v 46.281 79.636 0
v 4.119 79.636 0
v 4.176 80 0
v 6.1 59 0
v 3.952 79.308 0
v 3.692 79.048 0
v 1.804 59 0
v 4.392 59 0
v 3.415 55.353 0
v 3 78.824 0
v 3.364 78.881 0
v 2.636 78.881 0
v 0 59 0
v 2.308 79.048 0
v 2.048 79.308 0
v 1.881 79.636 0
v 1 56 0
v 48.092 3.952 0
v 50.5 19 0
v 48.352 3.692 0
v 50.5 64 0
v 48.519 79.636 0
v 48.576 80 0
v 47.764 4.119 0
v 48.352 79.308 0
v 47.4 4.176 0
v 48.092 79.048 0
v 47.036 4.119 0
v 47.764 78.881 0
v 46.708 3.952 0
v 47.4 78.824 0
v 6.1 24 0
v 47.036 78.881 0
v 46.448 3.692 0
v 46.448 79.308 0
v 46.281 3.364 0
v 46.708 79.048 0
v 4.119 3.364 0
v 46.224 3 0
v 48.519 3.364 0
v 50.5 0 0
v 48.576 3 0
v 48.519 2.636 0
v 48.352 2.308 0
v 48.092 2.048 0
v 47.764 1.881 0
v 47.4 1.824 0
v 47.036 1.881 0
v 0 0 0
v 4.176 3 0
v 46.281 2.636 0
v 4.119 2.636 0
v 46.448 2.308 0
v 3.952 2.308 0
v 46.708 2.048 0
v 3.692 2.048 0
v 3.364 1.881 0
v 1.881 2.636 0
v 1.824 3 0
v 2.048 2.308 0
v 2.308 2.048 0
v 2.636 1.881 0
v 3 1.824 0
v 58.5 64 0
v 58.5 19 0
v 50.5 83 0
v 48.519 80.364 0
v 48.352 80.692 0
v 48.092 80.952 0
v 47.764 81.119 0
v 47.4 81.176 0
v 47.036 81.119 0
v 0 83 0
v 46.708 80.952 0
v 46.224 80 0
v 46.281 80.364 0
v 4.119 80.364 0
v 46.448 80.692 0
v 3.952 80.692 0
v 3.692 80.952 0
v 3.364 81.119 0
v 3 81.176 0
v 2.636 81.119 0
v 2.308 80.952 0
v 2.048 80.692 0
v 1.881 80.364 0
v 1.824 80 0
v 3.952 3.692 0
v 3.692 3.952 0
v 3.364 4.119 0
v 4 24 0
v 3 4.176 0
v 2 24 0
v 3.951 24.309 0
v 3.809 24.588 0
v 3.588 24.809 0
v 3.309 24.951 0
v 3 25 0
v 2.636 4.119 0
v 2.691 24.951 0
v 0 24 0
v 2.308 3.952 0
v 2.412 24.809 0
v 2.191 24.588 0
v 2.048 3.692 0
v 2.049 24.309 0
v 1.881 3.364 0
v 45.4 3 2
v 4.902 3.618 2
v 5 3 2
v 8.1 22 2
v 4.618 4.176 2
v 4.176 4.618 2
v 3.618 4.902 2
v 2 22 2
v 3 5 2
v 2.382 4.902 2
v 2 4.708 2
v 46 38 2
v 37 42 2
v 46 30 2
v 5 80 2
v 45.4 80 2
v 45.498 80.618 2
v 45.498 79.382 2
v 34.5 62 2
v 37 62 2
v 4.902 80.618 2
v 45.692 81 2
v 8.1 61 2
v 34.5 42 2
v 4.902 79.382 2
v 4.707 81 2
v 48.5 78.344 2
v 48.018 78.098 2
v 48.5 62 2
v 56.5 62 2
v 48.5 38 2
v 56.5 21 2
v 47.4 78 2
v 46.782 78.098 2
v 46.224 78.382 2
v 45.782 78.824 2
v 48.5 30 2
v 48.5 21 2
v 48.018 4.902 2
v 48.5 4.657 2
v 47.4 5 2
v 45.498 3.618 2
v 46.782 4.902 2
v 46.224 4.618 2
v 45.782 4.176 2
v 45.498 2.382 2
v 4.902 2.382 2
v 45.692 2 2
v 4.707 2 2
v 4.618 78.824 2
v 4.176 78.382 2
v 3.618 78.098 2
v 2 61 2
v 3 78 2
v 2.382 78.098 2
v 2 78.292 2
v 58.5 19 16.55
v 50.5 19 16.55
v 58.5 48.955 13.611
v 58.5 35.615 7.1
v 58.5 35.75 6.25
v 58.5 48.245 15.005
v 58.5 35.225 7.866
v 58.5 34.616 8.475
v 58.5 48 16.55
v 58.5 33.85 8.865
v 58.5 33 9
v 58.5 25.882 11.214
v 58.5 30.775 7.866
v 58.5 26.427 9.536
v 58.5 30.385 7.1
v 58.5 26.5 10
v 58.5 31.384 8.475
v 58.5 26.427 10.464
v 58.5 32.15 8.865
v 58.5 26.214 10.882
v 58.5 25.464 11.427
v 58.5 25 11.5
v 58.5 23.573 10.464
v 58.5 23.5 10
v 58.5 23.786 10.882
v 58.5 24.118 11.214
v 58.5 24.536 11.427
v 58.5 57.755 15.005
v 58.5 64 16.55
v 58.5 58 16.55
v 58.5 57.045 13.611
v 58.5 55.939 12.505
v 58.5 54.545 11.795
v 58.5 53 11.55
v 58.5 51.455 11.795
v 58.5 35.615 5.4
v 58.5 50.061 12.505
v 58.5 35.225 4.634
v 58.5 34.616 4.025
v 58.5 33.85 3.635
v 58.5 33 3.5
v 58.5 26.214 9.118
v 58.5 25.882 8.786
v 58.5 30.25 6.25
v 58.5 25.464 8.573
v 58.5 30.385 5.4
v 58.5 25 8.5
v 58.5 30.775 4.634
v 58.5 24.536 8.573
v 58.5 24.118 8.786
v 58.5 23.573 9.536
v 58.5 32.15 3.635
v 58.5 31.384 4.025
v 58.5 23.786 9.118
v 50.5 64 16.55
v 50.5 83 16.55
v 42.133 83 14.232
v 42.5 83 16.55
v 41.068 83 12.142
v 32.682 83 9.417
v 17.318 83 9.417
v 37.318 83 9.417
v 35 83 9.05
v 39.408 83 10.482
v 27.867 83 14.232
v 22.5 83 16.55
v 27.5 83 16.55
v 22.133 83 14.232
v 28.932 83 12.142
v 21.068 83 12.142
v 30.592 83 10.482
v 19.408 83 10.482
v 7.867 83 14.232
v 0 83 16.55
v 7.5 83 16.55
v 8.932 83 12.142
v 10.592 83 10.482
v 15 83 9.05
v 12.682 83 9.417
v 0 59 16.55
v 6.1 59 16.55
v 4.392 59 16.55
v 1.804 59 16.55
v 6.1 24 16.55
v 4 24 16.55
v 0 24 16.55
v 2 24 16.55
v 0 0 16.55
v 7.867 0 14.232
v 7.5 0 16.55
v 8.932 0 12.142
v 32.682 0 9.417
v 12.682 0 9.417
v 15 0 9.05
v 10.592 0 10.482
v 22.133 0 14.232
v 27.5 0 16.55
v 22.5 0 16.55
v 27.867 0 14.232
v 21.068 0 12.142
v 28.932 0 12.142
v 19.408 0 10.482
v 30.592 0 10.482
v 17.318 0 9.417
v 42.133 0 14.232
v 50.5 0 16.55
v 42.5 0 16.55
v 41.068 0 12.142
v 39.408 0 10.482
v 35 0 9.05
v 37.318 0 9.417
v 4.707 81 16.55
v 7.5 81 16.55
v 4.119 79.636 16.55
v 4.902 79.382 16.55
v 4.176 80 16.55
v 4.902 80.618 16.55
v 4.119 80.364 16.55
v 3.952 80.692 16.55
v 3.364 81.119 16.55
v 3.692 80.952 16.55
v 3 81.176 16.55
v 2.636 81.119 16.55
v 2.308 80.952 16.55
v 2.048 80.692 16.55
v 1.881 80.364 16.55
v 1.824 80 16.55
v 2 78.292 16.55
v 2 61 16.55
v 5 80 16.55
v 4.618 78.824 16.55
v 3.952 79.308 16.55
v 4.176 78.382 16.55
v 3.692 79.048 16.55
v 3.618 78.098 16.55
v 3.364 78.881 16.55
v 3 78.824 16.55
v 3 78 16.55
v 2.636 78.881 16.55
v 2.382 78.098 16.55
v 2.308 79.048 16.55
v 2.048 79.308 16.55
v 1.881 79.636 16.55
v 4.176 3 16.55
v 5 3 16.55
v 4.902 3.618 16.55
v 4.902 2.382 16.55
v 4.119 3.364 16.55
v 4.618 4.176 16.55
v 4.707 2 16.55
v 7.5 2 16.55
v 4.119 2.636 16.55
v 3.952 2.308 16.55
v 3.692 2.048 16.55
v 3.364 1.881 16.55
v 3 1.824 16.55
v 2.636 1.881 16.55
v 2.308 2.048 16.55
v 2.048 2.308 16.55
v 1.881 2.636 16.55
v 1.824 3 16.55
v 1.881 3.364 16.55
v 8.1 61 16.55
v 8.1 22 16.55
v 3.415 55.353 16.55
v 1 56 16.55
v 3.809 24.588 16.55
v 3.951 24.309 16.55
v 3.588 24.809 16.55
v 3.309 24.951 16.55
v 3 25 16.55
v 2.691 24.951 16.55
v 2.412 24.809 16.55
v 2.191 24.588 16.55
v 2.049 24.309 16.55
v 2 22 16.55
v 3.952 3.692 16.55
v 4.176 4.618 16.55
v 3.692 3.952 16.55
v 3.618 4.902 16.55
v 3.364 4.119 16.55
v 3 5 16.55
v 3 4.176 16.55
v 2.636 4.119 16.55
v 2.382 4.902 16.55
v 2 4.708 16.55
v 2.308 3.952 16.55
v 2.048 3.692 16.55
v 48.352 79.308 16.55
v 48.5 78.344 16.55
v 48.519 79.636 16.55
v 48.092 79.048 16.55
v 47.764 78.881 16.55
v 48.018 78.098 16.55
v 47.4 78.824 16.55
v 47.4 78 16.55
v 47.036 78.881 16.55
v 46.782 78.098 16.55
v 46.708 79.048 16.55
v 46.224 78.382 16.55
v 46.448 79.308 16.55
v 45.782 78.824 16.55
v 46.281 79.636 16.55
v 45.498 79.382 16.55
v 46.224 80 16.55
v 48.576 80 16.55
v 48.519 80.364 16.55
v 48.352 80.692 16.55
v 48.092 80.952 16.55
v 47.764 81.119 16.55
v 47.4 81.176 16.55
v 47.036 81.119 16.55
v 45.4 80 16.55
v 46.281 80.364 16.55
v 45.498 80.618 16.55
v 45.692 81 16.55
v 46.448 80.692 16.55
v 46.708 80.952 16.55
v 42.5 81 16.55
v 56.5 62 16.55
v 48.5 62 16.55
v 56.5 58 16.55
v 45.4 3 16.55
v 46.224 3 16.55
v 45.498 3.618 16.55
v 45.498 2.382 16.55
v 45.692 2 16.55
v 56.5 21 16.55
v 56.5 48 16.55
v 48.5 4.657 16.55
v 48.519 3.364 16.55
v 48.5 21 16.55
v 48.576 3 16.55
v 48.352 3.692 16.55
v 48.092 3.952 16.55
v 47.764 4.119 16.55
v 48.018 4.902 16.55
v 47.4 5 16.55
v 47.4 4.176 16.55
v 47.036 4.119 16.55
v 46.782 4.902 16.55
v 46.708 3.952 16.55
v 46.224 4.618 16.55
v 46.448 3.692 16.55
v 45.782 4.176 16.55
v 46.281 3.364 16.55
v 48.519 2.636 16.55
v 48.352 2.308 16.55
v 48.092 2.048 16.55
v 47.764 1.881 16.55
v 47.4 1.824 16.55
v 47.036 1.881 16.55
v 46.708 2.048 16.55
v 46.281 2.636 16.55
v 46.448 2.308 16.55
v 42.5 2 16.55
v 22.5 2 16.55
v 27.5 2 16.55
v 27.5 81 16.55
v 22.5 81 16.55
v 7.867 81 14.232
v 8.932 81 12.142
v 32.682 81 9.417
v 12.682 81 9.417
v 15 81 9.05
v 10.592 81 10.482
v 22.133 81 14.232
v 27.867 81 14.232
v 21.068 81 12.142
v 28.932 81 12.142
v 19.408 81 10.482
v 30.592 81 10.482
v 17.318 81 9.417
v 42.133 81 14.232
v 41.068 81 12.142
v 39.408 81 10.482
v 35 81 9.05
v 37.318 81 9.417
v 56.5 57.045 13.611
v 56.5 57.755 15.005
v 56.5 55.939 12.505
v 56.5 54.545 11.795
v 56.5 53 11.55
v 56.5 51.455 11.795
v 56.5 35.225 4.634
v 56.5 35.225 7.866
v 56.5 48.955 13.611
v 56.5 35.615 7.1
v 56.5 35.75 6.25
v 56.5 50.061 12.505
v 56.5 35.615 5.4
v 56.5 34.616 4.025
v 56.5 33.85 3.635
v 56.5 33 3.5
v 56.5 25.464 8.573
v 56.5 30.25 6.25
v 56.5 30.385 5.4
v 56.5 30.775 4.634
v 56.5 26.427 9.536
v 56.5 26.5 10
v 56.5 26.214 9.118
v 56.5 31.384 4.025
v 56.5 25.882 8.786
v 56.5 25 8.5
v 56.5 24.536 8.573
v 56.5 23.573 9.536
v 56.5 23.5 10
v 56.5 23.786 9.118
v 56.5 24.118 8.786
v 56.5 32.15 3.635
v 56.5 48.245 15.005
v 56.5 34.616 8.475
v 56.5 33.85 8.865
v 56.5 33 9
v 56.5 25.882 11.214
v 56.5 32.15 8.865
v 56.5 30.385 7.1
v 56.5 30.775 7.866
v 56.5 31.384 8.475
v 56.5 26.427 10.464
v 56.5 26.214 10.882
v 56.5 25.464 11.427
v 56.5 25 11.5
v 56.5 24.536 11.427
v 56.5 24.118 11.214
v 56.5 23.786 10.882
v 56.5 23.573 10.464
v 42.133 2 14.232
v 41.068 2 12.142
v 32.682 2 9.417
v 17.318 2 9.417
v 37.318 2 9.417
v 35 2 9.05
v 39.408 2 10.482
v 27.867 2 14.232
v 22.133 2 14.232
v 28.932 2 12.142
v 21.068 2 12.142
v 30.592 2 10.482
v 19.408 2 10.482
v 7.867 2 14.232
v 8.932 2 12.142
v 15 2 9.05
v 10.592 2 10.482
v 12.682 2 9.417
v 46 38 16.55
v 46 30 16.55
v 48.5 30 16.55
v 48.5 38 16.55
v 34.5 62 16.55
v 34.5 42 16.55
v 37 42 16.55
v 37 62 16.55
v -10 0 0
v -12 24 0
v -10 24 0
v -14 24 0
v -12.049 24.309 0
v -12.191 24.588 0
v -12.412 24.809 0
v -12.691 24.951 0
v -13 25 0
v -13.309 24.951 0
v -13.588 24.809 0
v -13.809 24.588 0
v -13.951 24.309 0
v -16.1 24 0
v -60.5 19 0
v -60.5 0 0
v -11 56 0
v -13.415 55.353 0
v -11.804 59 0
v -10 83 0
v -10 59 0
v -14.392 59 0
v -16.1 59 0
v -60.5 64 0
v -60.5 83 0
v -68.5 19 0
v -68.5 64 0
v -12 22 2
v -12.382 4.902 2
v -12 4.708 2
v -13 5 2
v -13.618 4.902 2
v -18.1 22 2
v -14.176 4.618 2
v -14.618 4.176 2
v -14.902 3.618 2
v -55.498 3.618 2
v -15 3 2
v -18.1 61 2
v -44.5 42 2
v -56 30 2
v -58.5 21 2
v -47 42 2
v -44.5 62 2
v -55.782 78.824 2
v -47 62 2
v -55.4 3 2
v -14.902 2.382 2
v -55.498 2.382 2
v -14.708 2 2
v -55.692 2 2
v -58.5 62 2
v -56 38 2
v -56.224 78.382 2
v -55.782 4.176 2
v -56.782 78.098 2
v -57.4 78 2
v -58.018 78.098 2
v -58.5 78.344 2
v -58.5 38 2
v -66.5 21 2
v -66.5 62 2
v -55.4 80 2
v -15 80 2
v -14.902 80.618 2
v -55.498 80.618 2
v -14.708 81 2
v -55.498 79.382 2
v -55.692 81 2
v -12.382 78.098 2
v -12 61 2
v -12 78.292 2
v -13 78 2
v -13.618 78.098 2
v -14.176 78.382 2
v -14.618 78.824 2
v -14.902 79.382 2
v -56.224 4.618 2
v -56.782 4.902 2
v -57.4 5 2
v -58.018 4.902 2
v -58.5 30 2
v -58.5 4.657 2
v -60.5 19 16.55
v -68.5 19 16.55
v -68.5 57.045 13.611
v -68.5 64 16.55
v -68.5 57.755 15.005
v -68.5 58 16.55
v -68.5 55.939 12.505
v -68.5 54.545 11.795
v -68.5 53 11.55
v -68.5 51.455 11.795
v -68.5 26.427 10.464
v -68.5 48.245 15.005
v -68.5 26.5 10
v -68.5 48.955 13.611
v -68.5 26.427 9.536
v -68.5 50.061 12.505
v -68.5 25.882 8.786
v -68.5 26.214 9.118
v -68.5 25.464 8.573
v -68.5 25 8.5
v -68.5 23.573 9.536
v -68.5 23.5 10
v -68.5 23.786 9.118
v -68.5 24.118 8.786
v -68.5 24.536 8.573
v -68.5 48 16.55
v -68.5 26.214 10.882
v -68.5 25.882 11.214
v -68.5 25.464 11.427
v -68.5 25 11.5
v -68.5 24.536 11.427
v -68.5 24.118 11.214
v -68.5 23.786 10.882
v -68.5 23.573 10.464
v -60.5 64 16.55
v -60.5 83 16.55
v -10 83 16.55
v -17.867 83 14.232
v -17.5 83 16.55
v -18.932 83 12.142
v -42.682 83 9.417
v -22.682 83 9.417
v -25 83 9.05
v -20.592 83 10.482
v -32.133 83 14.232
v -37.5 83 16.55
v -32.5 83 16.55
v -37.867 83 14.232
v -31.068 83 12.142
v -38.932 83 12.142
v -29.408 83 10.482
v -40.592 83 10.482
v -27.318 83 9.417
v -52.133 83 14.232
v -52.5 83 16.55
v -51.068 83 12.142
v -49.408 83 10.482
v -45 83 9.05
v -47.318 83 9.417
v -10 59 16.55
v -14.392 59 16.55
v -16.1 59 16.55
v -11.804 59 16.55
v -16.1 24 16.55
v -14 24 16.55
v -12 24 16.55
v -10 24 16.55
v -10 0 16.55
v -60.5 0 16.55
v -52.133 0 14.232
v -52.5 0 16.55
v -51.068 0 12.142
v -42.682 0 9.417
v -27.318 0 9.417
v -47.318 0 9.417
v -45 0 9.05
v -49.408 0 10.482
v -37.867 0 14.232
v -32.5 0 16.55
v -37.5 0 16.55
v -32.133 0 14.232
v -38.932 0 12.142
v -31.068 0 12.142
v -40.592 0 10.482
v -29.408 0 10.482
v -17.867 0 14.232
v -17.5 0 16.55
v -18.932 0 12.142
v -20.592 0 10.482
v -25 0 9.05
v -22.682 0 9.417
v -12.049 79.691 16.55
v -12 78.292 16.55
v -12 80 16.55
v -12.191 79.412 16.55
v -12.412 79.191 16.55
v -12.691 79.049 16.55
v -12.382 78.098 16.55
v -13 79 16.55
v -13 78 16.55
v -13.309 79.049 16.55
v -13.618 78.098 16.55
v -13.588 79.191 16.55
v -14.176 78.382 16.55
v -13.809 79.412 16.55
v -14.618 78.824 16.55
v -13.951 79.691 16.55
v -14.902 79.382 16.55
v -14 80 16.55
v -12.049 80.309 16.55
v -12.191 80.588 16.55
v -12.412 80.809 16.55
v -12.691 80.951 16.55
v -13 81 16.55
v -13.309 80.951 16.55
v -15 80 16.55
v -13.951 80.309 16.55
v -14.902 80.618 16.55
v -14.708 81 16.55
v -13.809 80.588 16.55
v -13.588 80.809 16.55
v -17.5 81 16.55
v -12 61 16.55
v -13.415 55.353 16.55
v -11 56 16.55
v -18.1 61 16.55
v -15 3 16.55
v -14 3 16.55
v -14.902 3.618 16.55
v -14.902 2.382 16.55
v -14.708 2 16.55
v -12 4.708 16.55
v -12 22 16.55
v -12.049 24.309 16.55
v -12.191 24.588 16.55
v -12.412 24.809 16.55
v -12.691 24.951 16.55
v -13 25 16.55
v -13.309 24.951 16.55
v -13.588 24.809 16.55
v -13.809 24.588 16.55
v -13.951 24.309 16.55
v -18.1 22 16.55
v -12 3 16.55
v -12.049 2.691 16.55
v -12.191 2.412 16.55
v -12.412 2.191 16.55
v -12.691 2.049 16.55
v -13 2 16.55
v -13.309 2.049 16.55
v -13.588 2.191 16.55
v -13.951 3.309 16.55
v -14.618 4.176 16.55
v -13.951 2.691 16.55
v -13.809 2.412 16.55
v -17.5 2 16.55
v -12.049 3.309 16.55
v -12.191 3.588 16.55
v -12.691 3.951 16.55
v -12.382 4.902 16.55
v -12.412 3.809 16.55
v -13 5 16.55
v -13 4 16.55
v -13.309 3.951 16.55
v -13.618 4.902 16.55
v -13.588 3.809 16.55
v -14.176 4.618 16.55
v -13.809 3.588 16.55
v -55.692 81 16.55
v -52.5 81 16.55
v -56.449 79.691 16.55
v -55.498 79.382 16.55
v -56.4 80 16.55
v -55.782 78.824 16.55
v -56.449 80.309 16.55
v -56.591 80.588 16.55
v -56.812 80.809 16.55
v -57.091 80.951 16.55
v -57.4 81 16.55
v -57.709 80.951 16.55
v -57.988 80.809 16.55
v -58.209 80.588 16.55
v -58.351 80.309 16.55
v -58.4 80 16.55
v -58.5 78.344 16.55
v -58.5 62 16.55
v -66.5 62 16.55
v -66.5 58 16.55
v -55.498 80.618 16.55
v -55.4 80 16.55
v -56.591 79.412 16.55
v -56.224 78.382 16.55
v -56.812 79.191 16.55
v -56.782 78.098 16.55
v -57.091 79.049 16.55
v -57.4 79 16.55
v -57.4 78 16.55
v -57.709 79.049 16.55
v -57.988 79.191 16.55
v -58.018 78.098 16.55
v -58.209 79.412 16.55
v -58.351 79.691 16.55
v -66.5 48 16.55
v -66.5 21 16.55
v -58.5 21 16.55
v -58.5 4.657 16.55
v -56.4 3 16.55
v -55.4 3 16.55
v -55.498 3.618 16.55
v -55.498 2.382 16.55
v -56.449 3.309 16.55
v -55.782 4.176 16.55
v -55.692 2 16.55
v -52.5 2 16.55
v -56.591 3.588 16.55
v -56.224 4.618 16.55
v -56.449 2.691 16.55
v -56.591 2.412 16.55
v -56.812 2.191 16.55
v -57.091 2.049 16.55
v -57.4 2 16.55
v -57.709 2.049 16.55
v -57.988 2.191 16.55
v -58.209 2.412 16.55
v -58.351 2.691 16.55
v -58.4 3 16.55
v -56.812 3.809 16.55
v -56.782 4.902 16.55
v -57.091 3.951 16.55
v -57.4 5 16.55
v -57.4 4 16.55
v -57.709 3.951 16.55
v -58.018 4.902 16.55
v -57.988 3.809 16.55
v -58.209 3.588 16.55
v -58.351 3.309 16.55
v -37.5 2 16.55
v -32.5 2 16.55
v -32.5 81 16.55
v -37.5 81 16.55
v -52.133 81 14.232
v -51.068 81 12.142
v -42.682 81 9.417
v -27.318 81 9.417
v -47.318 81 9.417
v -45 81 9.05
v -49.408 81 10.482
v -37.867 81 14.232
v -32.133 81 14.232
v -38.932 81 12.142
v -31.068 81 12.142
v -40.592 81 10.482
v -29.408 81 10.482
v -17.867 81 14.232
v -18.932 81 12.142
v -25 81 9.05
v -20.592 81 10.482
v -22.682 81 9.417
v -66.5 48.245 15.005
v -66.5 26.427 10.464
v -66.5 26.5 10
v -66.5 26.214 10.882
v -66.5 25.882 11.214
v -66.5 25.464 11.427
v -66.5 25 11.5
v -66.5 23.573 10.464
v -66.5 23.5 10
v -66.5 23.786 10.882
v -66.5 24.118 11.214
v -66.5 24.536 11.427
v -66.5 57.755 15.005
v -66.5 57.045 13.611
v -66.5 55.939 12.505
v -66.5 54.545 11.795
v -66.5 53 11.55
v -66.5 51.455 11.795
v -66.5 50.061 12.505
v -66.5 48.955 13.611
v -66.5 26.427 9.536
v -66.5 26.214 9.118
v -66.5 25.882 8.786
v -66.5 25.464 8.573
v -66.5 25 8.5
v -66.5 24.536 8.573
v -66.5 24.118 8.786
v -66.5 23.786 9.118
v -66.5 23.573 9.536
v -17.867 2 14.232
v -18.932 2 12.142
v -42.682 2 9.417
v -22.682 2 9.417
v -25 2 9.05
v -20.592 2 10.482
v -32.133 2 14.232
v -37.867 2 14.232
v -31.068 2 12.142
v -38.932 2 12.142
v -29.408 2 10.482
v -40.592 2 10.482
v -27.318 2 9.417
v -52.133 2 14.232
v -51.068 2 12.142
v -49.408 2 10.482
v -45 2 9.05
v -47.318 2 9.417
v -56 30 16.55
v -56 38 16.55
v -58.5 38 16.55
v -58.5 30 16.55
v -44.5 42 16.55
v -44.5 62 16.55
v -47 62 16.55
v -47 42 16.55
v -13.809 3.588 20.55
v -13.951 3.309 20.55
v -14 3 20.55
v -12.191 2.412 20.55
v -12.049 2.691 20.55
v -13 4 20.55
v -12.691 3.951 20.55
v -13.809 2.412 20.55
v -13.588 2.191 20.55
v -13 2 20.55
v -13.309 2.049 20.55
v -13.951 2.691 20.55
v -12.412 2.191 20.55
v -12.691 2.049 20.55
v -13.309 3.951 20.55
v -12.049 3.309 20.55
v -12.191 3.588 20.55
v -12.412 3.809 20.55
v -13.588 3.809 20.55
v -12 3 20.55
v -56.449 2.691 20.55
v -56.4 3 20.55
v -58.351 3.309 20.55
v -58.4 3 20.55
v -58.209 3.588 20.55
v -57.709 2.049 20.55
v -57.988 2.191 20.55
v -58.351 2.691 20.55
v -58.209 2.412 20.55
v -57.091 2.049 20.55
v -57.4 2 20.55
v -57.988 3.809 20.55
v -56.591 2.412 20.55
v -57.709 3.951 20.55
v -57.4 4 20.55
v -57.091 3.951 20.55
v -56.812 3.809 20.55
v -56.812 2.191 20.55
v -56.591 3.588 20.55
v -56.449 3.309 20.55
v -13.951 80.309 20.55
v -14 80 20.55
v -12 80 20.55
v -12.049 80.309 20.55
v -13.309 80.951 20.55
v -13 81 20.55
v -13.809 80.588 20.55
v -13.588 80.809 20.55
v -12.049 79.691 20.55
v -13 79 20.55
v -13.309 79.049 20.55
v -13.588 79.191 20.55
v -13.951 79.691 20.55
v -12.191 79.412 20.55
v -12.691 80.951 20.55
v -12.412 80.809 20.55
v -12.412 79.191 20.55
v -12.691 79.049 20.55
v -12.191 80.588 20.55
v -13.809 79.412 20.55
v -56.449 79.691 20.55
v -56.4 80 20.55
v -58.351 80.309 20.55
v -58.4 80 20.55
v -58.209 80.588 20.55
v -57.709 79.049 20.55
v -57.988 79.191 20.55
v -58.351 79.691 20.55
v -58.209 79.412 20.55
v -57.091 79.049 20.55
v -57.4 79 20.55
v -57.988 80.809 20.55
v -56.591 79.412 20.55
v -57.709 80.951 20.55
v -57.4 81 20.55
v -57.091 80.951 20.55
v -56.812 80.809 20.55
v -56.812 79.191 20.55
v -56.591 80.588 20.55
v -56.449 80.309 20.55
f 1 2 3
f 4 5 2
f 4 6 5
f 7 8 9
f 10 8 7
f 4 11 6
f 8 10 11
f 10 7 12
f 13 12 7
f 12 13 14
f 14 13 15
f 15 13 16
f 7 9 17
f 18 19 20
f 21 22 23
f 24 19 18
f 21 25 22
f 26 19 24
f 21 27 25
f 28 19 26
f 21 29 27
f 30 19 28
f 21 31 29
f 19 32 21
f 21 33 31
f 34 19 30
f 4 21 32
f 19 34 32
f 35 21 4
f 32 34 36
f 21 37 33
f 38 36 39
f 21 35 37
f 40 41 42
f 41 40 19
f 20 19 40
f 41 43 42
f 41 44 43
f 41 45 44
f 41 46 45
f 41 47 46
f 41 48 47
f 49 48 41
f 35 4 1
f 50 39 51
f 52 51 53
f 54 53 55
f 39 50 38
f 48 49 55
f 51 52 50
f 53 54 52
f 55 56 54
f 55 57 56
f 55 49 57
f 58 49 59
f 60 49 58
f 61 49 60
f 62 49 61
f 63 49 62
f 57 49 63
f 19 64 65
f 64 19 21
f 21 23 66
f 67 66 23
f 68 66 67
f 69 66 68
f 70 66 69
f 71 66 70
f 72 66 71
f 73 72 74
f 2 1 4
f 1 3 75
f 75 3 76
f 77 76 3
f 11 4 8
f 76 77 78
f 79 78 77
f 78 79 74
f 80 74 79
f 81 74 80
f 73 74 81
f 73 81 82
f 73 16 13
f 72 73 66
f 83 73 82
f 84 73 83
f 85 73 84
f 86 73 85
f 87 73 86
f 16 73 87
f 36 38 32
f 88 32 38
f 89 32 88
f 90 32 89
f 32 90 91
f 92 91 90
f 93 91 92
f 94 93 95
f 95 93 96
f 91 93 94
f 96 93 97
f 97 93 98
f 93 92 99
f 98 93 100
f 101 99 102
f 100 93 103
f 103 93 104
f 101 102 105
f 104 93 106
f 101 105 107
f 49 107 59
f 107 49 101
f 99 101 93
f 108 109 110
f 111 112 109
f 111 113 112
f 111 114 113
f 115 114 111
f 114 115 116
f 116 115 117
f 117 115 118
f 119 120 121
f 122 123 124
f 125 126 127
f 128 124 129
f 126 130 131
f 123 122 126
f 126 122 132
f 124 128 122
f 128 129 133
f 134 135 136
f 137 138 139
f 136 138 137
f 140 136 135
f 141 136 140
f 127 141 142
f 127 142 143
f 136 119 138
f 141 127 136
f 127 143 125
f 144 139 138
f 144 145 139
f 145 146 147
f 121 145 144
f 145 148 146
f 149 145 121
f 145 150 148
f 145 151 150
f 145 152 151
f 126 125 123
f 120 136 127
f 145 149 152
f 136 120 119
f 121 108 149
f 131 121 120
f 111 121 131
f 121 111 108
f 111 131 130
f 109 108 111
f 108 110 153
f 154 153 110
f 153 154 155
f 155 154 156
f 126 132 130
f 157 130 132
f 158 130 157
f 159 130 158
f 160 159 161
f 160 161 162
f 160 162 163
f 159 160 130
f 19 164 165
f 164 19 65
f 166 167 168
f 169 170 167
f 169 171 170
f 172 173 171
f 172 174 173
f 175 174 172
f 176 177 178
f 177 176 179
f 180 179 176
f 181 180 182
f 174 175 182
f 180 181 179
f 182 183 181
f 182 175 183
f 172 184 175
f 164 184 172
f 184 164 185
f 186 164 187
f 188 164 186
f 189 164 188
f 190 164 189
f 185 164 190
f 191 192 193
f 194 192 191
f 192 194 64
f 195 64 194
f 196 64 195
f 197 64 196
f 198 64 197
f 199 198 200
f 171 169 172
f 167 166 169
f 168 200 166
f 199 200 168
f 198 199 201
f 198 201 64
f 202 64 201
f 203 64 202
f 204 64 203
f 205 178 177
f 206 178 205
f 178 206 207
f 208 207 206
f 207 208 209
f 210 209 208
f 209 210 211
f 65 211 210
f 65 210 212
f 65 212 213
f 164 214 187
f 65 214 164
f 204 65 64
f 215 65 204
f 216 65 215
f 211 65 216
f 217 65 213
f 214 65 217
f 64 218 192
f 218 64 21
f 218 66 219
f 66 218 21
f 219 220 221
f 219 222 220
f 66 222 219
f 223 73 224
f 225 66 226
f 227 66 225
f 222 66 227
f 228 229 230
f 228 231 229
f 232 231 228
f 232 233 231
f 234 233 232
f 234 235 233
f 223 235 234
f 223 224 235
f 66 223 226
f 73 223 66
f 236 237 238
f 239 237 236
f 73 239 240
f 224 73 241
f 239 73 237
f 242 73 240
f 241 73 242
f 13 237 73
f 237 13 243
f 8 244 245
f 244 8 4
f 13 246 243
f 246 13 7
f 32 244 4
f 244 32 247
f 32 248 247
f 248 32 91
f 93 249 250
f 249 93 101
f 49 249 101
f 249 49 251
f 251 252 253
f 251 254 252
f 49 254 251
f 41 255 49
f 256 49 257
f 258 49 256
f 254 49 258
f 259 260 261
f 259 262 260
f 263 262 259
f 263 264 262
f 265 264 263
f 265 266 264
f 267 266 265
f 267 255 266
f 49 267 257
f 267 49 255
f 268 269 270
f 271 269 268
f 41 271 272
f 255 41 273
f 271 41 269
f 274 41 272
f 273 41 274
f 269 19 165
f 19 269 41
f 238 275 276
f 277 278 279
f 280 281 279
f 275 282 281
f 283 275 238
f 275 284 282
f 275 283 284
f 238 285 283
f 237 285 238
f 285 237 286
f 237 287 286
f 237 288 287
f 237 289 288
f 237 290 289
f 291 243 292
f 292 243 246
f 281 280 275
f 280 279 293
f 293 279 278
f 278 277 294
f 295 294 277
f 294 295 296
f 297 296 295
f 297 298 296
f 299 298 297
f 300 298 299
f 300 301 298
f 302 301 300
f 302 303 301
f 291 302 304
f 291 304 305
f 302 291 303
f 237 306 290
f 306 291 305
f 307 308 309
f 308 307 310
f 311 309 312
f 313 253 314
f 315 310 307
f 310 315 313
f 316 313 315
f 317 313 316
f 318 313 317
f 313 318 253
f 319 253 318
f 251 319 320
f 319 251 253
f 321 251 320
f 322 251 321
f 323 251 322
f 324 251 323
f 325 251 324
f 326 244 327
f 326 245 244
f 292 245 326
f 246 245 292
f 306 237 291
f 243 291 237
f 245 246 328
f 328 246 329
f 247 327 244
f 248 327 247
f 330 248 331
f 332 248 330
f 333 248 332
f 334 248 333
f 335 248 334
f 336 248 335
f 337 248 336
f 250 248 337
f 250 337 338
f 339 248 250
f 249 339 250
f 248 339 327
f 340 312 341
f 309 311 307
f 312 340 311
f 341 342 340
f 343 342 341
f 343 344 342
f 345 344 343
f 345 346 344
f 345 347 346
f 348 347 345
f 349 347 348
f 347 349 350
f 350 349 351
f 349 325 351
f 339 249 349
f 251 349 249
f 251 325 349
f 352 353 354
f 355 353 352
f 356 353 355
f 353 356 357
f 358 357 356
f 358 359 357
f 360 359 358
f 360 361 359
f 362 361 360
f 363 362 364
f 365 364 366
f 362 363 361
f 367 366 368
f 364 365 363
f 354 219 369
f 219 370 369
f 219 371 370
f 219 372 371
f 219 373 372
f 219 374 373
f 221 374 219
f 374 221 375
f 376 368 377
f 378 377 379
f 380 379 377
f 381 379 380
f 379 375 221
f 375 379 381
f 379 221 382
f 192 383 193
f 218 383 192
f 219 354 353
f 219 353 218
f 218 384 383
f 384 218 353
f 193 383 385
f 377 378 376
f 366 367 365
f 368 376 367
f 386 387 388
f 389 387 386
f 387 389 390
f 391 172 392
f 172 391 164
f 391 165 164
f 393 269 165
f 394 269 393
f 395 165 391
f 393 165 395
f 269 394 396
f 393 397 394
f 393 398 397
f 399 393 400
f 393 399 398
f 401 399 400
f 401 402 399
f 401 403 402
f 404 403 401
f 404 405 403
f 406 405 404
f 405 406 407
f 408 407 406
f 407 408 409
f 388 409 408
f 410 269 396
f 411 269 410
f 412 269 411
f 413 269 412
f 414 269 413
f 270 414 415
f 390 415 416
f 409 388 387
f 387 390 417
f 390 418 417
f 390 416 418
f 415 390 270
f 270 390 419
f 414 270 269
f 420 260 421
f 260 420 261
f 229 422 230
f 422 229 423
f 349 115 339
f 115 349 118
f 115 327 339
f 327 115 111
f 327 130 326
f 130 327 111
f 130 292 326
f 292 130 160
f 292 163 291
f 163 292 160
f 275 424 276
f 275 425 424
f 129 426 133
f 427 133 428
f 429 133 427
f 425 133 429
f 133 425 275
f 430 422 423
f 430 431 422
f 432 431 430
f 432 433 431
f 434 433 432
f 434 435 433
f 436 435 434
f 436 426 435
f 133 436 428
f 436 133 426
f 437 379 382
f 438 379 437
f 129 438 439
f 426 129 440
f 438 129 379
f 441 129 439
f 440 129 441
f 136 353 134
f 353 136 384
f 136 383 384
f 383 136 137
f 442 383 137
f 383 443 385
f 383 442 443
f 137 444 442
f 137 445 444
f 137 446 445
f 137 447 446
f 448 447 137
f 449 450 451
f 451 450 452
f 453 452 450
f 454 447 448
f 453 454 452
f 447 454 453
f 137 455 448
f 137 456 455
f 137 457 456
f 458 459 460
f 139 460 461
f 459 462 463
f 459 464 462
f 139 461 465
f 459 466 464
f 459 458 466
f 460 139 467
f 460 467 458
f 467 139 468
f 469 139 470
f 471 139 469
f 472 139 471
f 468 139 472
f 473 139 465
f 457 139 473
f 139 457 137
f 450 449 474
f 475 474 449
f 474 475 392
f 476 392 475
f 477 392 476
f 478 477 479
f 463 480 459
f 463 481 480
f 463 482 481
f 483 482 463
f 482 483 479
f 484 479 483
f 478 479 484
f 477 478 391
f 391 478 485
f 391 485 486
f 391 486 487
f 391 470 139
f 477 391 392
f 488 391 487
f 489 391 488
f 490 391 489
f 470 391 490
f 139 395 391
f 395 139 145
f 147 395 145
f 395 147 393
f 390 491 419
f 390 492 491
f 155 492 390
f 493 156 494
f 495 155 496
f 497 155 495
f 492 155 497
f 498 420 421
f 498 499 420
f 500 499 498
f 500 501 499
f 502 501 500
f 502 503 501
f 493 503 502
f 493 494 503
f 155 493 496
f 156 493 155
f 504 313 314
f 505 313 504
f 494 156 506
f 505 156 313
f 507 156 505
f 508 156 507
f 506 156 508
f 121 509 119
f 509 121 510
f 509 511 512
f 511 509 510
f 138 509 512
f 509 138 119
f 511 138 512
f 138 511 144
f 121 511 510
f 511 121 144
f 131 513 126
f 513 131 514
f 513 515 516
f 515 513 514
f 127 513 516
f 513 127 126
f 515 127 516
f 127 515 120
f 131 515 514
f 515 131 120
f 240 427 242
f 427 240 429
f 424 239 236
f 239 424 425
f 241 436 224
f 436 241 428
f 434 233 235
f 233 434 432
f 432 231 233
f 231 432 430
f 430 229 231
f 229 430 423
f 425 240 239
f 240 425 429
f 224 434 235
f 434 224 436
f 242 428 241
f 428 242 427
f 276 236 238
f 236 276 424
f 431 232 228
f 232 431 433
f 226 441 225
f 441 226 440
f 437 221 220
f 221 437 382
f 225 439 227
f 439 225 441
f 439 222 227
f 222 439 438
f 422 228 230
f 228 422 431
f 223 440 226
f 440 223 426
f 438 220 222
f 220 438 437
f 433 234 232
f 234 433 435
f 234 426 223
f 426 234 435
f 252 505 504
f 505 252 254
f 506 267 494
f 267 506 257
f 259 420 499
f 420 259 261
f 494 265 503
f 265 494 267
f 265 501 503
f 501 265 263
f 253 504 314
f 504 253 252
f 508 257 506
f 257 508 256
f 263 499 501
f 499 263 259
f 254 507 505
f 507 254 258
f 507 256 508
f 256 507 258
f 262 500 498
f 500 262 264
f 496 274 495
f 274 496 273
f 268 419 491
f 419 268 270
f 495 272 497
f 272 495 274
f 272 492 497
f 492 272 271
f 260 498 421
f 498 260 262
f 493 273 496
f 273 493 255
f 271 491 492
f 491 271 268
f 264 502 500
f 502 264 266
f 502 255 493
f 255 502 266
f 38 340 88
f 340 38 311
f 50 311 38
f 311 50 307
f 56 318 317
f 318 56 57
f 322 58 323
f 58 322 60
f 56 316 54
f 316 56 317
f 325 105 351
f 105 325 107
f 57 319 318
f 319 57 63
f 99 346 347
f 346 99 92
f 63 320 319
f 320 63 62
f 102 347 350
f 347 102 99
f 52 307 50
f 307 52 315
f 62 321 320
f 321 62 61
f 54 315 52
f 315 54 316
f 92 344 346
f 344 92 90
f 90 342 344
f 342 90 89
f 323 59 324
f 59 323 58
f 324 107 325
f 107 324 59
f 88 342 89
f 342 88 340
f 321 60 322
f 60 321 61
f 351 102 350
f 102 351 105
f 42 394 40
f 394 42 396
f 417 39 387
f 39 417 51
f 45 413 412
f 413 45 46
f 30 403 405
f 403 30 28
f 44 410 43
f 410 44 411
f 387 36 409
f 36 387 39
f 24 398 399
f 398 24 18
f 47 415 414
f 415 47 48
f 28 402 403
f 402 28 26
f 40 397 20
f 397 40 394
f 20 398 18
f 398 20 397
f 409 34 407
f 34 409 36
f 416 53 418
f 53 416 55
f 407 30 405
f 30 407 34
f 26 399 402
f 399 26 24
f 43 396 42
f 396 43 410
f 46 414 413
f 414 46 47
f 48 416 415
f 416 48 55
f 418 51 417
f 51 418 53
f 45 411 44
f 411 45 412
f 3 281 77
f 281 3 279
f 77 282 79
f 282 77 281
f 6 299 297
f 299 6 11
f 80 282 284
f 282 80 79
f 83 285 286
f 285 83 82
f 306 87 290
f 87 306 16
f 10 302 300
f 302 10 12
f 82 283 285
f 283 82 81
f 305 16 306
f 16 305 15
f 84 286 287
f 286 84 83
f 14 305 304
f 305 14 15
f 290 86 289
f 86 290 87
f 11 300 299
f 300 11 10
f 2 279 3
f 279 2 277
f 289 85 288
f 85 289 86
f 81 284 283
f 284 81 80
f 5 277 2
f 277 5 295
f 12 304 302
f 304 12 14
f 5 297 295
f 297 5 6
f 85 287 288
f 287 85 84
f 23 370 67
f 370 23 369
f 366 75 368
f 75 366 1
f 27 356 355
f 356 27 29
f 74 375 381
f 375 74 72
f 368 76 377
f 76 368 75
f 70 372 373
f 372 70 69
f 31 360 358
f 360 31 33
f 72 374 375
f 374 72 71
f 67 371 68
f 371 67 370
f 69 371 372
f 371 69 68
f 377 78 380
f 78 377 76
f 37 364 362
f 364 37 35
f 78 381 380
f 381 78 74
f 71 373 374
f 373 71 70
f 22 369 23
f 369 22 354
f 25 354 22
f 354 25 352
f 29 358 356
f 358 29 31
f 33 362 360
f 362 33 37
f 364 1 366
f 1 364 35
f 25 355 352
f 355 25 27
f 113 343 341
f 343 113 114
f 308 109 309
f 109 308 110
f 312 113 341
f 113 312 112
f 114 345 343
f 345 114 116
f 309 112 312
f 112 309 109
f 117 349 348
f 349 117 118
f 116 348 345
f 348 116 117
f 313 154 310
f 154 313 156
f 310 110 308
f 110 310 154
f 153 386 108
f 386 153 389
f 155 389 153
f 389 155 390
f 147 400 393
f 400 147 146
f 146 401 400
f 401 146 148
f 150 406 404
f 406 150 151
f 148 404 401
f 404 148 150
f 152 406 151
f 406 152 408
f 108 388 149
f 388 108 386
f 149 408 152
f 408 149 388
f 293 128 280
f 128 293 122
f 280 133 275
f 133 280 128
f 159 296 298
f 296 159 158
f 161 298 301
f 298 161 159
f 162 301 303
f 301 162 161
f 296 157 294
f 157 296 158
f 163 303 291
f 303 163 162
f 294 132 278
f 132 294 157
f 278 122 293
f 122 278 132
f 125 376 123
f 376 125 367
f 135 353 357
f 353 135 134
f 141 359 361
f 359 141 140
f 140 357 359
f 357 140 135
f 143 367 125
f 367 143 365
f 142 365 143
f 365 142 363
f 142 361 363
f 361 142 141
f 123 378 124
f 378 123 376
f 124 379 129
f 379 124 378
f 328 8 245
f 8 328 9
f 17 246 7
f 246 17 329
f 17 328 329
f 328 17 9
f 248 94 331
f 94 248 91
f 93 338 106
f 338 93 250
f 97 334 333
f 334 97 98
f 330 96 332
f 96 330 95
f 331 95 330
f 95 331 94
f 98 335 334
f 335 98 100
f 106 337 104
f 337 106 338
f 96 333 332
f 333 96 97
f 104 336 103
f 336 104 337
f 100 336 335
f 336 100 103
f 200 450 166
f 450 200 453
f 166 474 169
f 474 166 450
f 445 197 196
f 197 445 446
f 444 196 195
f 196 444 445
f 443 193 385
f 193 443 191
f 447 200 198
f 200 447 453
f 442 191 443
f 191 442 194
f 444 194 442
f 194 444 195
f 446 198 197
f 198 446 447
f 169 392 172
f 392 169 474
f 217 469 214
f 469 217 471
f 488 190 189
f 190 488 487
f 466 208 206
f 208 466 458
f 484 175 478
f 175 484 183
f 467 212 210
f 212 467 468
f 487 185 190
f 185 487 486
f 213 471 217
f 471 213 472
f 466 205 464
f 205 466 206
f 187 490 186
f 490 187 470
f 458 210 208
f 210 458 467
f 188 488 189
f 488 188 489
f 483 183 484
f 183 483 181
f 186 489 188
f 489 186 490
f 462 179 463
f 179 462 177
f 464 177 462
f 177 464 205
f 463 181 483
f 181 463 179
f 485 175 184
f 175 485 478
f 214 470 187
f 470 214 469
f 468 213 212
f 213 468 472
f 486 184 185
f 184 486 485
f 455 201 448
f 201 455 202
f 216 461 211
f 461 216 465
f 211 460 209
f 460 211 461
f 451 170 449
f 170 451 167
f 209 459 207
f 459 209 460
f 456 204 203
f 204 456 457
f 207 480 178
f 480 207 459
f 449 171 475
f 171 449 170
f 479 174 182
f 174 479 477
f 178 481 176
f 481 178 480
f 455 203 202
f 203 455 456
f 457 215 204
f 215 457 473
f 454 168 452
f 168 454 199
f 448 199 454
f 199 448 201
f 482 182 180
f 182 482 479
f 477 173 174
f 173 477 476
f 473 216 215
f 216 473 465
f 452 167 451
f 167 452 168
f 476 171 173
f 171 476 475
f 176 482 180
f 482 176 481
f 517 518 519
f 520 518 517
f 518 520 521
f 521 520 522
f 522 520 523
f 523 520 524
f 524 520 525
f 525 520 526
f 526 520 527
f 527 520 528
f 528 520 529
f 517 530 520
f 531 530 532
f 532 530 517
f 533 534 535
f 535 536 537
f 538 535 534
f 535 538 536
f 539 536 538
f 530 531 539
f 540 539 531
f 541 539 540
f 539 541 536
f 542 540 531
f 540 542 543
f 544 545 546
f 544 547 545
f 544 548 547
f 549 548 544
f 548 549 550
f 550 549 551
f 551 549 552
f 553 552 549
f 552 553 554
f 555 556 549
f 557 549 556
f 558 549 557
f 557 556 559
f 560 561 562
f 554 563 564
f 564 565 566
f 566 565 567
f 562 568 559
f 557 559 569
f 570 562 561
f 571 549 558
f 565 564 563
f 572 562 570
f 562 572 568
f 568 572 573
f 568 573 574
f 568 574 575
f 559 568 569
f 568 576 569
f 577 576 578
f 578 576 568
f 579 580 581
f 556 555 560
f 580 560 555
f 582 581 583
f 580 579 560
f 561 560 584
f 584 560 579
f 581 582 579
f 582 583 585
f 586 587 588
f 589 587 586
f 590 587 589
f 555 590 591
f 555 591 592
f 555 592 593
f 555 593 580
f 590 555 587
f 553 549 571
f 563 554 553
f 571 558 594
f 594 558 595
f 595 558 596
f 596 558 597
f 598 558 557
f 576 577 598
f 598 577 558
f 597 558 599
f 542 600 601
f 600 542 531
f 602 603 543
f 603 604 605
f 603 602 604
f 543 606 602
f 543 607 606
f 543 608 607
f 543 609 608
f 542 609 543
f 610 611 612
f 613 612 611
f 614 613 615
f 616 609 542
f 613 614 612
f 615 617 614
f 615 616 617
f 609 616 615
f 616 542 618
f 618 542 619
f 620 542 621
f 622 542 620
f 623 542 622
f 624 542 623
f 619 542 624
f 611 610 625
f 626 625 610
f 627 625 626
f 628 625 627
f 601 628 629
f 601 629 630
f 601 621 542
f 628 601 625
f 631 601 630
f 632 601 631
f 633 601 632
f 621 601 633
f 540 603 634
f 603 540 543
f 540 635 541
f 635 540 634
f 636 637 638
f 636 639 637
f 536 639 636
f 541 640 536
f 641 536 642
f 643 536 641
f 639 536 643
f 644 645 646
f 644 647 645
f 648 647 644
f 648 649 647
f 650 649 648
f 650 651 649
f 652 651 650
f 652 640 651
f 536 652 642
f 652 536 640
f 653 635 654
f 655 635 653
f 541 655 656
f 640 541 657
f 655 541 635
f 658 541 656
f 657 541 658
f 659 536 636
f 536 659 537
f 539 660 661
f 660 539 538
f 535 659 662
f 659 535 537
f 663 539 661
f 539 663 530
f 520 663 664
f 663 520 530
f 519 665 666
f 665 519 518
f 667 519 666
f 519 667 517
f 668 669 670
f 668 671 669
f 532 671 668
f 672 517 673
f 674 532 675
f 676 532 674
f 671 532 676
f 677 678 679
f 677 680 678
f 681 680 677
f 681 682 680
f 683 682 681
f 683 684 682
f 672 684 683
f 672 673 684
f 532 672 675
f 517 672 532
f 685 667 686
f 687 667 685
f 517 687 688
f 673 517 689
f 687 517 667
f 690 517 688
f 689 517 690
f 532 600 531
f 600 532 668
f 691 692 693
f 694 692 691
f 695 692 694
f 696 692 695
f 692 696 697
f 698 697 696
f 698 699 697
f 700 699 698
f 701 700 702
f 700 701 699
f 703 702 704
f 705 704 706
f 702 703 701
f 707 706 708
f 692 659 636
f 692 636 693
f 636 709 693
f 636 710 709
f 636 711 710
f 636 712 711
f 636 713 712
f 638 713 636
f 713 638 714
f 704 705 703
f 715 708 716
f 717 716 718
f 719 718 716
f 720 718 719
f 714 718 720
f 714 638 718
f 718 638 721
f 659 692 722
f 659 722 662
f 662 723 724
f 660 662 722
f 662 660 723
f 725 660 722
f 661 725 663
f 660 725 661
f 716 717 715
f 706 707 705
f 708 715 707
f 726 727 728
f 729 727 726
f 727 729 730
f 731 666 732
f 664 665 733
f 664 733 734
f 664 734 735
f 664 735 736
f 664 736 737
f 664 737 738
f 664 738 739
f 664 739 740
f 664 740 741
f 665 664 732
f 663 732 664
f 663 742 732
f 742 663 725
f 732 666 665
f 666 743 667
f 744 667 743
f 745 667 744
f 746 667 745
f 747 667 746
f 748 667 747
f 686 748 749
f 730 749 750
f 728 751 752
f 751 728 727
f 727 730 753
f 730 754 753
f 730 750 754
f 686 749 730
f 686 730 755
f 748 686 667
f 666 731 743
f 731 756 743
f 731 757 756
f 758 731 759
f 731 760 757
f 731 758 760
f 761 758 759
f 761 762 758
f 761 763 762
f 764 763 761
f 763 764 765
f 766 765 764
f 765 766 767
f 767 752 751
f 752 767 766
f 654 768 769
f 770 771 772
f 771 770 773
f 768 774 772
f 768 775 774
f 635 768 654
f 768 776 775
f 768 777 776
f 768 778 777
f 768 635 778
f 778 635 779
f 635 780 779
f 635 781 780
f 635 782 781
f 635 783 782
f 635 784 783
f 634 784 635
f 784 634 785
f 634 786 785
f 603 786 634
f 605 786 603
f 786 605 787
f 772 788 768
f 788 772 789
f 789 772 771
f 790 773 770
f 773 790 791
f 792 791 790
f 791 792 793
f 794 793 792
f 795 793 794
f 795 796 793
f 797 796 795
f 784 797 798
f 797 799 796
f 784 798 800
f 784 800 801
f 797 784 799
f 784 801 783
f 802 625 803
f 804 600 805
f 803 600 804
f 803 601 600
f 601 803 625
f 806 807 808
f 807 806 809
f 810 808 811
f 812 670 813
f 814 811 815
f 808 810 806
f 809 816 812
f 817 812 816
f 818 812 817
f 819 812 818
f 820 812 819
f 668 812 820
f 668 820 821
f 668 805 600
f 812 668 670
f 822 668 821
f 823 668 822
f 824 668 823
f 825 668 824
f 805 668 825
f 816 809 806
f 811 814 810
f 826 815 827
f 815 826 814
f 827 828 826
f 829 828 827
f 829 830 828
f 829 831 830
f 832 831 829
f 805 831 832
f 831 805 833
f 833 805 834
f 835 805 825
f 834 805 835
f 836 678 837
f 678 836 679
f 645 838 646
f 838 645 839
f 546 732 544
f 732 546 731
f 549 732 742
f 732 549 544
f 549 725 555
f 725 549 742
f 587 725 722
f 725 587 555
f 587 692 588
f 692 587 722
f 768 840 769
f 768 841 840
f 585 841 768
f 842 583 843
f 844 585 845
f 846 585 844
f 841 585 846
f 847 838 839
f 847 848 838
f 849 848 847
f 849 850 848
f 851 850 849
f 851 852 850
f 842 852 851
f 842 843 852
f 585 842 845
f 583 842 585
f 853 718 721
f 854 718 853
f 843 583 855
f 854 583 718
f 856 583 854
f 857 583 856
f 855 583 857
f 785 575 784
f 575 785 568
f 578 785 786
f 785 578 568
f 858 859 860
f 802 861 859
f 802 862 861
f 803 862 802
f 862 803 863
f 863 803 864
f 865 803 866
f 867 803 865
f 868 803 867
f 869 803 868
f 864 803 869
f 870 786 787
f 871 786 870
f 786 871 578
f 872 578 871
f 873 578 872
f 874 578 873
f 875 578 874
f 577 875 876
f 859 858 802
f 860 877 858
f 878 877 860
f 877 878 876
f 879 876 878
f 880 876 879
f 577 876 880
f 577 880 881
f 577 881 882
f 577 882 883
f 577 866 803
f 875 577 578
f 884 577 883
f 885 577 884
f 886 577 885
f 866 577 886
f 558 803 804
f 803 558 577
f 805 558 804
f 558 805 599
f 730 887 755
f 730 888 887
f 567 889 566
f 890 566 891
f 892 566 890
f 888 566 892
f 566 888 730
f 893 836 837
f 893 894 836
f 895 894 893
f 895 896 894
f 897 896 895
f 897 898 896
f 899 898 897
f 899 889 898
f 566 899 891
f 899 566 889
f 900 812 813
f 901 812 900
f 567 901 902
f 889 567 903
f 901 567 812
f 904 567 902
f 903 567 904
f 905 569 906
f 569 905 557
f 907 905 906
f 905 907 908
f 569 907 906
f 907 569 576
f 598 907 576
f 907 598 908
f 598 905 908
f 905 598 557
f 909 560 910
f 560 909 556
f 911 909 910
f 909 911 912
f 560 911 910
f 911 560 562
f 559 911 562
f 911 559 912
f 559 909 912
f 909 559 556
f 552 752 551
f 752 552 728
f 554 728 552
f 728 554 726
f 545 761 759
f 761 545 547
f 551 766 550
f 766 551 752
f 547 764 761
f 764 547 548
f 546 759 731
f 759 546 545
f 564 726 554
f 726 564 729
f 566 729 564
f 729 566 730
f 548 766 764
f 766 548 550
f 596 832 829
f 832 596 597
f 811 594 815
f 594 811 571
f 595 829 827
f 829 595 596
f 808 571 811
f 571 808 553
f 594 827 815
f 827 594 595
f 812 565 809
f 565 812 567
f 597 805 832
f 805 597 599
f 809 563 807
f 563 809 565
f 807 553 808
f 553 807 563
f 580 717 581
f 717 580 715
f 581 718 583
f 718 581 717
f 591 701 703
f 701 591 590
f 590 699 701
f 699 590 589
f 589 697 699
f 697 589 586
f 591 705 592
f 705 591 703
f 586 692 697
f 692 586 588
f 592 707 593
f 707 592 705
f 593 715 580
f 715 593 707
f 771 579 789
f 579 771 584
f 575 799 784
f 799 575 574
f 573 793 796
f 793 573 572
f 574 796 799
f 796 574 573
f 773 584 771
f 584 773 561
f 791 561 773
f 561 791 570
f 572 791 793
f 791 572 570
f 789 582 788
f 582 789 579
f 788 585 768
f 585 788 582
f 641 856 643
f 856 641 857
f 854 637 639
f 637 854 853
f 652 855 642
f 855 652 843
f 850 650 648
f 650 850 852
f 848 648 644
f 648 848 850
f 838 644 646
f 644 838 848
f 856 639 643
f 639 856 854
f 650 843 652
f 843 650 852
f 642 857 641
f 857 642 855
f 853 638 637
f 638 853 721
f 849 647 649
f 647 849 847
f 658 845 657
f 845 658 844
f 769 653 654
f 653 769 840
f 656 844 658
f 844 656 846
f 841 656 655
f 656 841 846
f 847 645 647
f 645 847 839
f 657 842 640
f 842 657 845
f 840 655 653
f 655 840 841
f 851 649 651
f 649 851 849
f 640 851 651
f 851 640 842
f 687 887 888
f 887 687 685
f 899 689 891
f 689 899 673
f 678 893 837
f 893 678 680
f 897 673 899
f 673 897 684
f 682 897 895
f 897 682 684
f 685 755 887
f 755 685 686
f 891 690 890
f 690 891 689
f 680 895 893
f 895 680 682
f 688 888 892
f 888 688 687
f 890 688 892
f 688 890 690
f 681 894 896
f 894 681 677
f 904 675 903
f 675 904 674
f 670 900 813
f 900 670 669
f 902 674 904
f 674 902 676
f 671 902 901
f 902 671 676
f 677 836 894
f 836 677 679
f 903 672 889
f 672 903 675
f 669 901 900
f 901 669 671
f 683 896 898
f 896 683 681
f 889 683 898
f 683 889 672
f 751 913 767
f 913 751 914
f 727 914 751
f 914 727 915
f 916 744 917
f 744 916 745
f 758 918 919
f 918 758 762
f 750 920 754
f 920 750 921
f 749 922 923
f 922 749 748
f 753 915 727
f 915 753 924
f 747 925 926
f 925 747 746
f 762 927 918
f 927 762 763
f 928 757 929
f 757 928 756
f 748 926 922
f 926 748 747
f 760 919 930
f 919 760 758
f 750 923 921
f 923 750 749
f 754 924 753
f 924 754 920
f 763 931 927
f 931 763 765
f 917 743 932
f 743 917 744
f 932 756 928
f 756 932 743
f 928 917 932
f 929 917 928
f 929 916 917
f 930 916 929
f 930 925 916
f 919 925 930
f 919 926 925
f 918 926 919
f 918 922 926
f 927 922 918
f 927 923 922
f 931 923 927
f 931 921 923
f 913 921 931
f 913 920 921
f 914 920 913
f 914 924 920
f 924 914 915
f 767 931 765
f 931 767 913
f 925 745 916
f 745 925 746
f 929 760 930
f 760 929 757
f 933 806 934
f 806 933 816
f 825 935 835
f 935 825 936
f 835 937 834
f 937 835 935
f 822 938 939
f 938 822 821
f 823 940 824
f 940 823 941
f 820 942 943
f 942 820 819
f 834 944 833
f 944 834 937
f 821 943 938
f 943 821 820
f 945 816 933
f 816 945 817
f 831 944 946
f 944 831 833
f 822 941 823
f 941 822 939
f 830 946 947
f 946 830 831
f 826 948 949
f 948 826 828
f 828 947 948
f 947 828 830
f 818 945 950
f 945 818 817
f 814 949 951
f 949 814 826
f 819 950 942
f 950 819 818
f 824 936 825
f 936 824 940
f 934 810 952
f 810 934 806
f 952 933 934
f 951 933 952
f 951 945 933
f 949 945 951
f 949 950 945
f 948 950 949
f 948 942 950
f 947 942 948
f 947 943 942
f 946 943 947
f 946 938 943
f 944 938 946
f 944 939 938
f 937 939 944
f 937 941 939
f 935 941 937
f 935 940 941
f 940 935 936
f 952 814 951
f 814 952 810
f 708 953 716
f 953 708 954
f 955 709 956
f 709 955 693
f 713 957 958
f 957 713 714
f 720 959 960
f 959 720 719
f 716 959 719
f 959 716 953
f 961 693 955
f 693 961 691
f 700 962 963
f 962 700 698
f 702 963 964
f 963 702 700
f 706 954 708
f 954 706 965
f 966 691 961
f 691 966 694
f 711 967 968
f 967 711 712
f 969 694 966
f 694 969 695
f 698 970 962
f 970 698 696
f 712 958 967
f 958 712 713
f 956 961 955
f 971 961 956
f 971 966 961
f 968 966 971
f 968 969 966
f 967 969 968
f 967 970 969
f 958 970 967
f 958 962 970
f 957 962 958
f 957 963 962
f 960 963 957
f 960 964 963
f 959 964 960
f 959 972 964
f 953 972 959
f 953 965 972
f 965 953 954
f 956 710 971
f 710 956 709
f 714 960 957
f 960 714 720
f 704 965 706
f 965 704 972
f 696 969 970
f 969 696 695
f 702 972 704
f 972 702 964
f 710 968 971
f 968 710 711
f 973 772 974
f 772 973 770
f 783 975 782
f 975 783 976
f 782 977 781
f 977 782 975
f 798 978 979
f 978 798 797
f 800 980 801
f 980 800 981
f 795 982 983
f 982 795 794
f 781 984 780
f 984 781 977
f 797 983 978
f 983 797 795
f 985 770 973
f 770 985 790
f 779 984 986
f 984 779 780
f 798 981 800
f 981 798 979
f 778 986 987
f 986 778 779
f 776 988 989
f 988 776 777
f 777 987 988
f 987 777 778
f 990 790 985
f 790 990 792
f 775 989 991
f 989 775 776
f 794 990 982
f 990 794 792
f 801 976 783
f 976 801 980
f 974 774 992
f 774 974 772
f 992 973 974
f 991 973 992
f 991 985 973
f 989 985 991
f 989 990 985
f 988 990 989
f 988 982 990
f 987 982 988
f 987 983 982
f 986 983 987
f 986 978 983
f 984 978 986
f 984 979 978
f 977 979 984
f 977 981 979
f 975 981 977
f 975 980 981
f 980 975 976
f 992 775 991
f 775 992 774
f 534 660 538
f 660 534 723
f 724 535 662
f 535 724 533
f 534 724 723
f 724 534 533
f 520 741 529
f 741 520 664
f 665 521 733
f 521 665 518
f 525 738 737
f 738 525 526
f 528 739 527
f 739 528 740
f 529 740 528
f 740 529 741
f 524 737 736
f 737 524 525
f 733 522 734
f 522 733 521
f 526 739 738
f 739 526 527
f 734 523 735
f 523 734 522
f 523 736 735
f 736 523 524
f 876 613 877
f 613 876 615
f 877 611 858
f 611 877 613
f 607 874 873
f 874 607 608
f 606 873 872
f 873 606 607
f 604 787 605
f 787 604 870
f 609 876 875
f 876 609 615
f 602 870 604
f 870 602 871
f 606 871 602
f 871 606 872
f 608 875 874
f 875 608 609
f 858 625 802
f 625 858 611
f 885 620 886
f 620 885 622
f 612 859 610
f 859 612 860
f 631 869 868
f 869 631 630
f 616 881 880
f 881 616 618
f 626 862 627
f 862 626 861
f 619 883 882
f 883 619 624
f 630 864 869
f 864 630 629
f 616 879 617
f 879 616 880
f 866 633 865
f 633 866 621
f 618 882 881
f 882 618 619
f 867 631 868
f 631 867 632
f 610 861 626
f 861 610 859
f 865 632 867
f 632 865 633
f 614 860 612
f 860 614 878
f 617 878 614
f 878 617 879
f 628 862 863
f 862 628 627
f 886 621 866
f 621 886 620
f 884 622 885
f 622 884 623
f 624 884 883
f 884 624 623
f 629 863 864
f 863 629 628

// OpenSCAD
stdA = 44.4;
stdB = 19;
stdC = 8; // dépassement depuis extérieur boitier, non ISO = 27mm, ISO=16.5
stdD = 45;
stdE = 6.1;
stdF = 24;
stdR = 35;
stdW = 33.1; // std would be 35.6mm!!! Legrand (c) and others
stdTh = 2;
camD = 10;
camOffcY = 4 + camD/2;
flashD = 5.5;
flashOffcX = flashD/2+1.5;
flashOffcY = 29;
fixHoleD = 4;
fixHoled = 2;

$fn=20;

basepts = [
    [0,0], [stdA,0], [stdA,stdB], [stdA+stdC, stdB], [stdA+stdC, stdB+stdD],
    [stdA, stdB+stdD], [stdA, stdB*2+stdD], [0, stdB*2+stdD],
    [-stdE, stdB*2+stdD], [-stdE, stdB*2+stdD-stdF], [0, stdB*2+stdD-stdF],
    [0, stdF], [-stdE, stdF], [-stdE, 0]
];


difference() {
    union() {
        baseISO();
        mountingESP();
        mountingHoles();
    }
    screwHoles();
    camHole();
    ledStatusHole();
    flashHole();
    wiresHole();
}

mirror([1,0,0]) {
    translate([10, 0, 0]) {
    difference() {
        union() {
            baseISO();
            mountingESP();
            mountingHolesB();
        }
        camHole();
        ledStatusHole();
        //flashHole();
        wiresHole();
    }
    }
}

module camHole() {
    color("red")
    translate([stdE+stdA+stdC-stdTh-stdTh/2, stdB+stdD-camOffcY-stdTh, stdW/2])
    rotate([0,90,0])
    cylinder(r=camD/2,h=stdTh*2);
}

module flashHole() {
    color("yellow")
    translate([stdE+stdA+stdC-stdTh-stdTh/2, stdB+stdD-flashOffcY-stdTh, stdTh+flashOffcX])
    rotate([0,90,0])
    cylinder(r=flashD/2,h=stdTh*2);
}

module ledStatusHole() {
    color("red")
    translate([stdE+stdA+stdC-stdTh-stdTh/2, stdB+stdD-flashOffcY-10, stdTh+8])
    rotate([0,90,0]) {
        cylinder(r=3/2,h=stdTh*2);
    }
}

module mountingESP() {
    translate([stdE+stdA+stdC-stdTh-2.5-8, stdB+stdD-stdTh-8-24])
    linear_extrude(height = stdW/2)
    square([2.5,8]);
    
    translate([stdE+stdA+stdC-stdTh-2.5-8-11.5, stdB+stdD-stdTh-20])
    linear_extrude(height = stdW/2)
    square([2.5,20]);
}

module wiresHole() {
    color("black") {
        translate([15, stdB+stdD+stdB+stdTh/2, stdW/2])
        rotate([90,90,0])
        cylinder(r=15/2,h=stdTh*2);

        translate([35, stdB+stdD+stdB+stdTh/2, stdW/2])
        rotate([90,90,0])
        cylinder(r=15/2,h=stdTh*2);
        
        translate([15, stdTh*1.5, stdW/2])
        rotate([90,90,0])
        cylinder(r=15/2,h=stdTh*2);

        translate([35, stdTh*1.5, stdW/2])
        rotate([90,90,0])
        cylinder(r=15/2,h=stdTh*2);
    }
}

module mountingHoles() {
    translate([stdTh*1.5, stdTh*1.5, 0])
    rotate([0,0,0])
    cylinder(r=fixHoleD/2,h=stdW/2);

    translate([stdTh*1.5+stdA, stdTh*1.5, 0])
    rotate([0,0,0])
    cylinder(r=fixHoleD/2,h=stdW/2);
    
    translate([stdTh*1.5, -stdTh*1.5+stdB*2+stdD, 0])
    rotate([0,0,0])
    cylinder(r=fixHoleD/2,h=stdW/2);

    translate([stdTh*1.5+stdA, -stdTh*1.5+stdB*2+stdD, 0])
    rotate([0,0,0])
    cylinder(r=fixHoleD/2,h=stdW/2);

    translate([stdTh/2, stdB*2+stdD-stdF-3])
    linear_extrude(height = stdW/2)
    rotate([0,0,-15])
    square([2.5,4]);

    translate([stdTh*1.5, stdF, 0])
    cylinder(r=fixHoled/2,h=stdW/2);
}

module screwHoles() {
    translate([stdTh*1.5, stdTh*1.5, 0])
    rotate([0,0,0])
    cylinder(r=fixHoled/1.7,h=stdW/2);

    translate([stdTh*1.5+stdA, stdTh*1.5, 0])
    rotate([0,0,0])
    cylinder(r=fixHoled/1.7,h=stdW/2);
    
    translate([stdTh*1.5, -stdTh*1.5+stdB*2+stdD, 0])
    rotate([0,0,0])
    cylinder(r=fixHoled/1.7,h=stdW/2);

    translate([stdTh*1.5+stdA, -stdTh*1.5+stdB*2+stdD, 0])
    rotate([0,0,0])
    cylinder(r=fixHoled/1.7,h=stdW/2);
}

module mountingHolesB() {
    union() {
    union() {
        translate([stdTh*1.5, stdTh*1.5, 0])
        rotate([0,0,0])
        cylinder(r=fixHoleD/2,h=stdW/2);

        translate([stdTh*1.5+stdA, stdTh*1.5, 0])
        rotate([0,0,0])
        cylinder(r=fixHoleD/2,h=stdW/2);
        
        translate([stdTh*1.5, -stdTh*1.5+stdB*2+stdD, 0])
        rotate([0,0,0])
        cylinder(r=fixHoleD/2,h=stdW/2);

        translate([stdTh*1.5+stdA, -stdTh*1.5+stdB*2+stdD, 0])
        rotate([0,0,0])
        cylinder(r=fixHoleD/2,h=stdW/2);
    }
    union() {
        translate([stdTh*1.5, stdTh*1.5, 0])
        rotate([0,0,0])
        cylinder(r=fixHoled/2,h=stdW/2+4);

        translate([stdTh*1.5+stdA, stdTh*1.5, 0])
        rotate([0,0,0])
        cylinder(r=fixHoled/2,h=stdW/2+4);
        
        translate([stdTh*1.5, -stdTh*1.5+stdB*2+stdD, 0])
        rotate([0,0,0])
        cylinder(r=fixHoled/2,h=stdW/2+4);

        translate([stdTh*1.5+stdA, -stdTh*1.5+stdB*2+stdD, 0])
        rotate([0,0,0])
        cylinder(r=fixHoled/2,h=stdW/2+4);
    }
}

    translate([stdTh/2, stdB*2+stdD-stdF-3])
    linear_extrude(height = stdW/2)
    rotate([0,0,-15])
    square([2.5,4]);

    translate([stdTh*1.5, stdF, 0])
    cylinder(r=fixHoled/2,h=stdW/2);
}

module baseISO() {
     {
        translate([stdE, 0, 0]) {
            
        color("red") linear_extrude(stdTh)color("red") polygon(points=basepts);
        
        linear_extrude(height = stdW/2) {
          difference() {
         offset(delta = 0) {
          polygon(points=basepts);
         }
         offset(delta = -stdTh) {
           polygon(points=basepts);
         }
        }
       }
     }
 }
}
